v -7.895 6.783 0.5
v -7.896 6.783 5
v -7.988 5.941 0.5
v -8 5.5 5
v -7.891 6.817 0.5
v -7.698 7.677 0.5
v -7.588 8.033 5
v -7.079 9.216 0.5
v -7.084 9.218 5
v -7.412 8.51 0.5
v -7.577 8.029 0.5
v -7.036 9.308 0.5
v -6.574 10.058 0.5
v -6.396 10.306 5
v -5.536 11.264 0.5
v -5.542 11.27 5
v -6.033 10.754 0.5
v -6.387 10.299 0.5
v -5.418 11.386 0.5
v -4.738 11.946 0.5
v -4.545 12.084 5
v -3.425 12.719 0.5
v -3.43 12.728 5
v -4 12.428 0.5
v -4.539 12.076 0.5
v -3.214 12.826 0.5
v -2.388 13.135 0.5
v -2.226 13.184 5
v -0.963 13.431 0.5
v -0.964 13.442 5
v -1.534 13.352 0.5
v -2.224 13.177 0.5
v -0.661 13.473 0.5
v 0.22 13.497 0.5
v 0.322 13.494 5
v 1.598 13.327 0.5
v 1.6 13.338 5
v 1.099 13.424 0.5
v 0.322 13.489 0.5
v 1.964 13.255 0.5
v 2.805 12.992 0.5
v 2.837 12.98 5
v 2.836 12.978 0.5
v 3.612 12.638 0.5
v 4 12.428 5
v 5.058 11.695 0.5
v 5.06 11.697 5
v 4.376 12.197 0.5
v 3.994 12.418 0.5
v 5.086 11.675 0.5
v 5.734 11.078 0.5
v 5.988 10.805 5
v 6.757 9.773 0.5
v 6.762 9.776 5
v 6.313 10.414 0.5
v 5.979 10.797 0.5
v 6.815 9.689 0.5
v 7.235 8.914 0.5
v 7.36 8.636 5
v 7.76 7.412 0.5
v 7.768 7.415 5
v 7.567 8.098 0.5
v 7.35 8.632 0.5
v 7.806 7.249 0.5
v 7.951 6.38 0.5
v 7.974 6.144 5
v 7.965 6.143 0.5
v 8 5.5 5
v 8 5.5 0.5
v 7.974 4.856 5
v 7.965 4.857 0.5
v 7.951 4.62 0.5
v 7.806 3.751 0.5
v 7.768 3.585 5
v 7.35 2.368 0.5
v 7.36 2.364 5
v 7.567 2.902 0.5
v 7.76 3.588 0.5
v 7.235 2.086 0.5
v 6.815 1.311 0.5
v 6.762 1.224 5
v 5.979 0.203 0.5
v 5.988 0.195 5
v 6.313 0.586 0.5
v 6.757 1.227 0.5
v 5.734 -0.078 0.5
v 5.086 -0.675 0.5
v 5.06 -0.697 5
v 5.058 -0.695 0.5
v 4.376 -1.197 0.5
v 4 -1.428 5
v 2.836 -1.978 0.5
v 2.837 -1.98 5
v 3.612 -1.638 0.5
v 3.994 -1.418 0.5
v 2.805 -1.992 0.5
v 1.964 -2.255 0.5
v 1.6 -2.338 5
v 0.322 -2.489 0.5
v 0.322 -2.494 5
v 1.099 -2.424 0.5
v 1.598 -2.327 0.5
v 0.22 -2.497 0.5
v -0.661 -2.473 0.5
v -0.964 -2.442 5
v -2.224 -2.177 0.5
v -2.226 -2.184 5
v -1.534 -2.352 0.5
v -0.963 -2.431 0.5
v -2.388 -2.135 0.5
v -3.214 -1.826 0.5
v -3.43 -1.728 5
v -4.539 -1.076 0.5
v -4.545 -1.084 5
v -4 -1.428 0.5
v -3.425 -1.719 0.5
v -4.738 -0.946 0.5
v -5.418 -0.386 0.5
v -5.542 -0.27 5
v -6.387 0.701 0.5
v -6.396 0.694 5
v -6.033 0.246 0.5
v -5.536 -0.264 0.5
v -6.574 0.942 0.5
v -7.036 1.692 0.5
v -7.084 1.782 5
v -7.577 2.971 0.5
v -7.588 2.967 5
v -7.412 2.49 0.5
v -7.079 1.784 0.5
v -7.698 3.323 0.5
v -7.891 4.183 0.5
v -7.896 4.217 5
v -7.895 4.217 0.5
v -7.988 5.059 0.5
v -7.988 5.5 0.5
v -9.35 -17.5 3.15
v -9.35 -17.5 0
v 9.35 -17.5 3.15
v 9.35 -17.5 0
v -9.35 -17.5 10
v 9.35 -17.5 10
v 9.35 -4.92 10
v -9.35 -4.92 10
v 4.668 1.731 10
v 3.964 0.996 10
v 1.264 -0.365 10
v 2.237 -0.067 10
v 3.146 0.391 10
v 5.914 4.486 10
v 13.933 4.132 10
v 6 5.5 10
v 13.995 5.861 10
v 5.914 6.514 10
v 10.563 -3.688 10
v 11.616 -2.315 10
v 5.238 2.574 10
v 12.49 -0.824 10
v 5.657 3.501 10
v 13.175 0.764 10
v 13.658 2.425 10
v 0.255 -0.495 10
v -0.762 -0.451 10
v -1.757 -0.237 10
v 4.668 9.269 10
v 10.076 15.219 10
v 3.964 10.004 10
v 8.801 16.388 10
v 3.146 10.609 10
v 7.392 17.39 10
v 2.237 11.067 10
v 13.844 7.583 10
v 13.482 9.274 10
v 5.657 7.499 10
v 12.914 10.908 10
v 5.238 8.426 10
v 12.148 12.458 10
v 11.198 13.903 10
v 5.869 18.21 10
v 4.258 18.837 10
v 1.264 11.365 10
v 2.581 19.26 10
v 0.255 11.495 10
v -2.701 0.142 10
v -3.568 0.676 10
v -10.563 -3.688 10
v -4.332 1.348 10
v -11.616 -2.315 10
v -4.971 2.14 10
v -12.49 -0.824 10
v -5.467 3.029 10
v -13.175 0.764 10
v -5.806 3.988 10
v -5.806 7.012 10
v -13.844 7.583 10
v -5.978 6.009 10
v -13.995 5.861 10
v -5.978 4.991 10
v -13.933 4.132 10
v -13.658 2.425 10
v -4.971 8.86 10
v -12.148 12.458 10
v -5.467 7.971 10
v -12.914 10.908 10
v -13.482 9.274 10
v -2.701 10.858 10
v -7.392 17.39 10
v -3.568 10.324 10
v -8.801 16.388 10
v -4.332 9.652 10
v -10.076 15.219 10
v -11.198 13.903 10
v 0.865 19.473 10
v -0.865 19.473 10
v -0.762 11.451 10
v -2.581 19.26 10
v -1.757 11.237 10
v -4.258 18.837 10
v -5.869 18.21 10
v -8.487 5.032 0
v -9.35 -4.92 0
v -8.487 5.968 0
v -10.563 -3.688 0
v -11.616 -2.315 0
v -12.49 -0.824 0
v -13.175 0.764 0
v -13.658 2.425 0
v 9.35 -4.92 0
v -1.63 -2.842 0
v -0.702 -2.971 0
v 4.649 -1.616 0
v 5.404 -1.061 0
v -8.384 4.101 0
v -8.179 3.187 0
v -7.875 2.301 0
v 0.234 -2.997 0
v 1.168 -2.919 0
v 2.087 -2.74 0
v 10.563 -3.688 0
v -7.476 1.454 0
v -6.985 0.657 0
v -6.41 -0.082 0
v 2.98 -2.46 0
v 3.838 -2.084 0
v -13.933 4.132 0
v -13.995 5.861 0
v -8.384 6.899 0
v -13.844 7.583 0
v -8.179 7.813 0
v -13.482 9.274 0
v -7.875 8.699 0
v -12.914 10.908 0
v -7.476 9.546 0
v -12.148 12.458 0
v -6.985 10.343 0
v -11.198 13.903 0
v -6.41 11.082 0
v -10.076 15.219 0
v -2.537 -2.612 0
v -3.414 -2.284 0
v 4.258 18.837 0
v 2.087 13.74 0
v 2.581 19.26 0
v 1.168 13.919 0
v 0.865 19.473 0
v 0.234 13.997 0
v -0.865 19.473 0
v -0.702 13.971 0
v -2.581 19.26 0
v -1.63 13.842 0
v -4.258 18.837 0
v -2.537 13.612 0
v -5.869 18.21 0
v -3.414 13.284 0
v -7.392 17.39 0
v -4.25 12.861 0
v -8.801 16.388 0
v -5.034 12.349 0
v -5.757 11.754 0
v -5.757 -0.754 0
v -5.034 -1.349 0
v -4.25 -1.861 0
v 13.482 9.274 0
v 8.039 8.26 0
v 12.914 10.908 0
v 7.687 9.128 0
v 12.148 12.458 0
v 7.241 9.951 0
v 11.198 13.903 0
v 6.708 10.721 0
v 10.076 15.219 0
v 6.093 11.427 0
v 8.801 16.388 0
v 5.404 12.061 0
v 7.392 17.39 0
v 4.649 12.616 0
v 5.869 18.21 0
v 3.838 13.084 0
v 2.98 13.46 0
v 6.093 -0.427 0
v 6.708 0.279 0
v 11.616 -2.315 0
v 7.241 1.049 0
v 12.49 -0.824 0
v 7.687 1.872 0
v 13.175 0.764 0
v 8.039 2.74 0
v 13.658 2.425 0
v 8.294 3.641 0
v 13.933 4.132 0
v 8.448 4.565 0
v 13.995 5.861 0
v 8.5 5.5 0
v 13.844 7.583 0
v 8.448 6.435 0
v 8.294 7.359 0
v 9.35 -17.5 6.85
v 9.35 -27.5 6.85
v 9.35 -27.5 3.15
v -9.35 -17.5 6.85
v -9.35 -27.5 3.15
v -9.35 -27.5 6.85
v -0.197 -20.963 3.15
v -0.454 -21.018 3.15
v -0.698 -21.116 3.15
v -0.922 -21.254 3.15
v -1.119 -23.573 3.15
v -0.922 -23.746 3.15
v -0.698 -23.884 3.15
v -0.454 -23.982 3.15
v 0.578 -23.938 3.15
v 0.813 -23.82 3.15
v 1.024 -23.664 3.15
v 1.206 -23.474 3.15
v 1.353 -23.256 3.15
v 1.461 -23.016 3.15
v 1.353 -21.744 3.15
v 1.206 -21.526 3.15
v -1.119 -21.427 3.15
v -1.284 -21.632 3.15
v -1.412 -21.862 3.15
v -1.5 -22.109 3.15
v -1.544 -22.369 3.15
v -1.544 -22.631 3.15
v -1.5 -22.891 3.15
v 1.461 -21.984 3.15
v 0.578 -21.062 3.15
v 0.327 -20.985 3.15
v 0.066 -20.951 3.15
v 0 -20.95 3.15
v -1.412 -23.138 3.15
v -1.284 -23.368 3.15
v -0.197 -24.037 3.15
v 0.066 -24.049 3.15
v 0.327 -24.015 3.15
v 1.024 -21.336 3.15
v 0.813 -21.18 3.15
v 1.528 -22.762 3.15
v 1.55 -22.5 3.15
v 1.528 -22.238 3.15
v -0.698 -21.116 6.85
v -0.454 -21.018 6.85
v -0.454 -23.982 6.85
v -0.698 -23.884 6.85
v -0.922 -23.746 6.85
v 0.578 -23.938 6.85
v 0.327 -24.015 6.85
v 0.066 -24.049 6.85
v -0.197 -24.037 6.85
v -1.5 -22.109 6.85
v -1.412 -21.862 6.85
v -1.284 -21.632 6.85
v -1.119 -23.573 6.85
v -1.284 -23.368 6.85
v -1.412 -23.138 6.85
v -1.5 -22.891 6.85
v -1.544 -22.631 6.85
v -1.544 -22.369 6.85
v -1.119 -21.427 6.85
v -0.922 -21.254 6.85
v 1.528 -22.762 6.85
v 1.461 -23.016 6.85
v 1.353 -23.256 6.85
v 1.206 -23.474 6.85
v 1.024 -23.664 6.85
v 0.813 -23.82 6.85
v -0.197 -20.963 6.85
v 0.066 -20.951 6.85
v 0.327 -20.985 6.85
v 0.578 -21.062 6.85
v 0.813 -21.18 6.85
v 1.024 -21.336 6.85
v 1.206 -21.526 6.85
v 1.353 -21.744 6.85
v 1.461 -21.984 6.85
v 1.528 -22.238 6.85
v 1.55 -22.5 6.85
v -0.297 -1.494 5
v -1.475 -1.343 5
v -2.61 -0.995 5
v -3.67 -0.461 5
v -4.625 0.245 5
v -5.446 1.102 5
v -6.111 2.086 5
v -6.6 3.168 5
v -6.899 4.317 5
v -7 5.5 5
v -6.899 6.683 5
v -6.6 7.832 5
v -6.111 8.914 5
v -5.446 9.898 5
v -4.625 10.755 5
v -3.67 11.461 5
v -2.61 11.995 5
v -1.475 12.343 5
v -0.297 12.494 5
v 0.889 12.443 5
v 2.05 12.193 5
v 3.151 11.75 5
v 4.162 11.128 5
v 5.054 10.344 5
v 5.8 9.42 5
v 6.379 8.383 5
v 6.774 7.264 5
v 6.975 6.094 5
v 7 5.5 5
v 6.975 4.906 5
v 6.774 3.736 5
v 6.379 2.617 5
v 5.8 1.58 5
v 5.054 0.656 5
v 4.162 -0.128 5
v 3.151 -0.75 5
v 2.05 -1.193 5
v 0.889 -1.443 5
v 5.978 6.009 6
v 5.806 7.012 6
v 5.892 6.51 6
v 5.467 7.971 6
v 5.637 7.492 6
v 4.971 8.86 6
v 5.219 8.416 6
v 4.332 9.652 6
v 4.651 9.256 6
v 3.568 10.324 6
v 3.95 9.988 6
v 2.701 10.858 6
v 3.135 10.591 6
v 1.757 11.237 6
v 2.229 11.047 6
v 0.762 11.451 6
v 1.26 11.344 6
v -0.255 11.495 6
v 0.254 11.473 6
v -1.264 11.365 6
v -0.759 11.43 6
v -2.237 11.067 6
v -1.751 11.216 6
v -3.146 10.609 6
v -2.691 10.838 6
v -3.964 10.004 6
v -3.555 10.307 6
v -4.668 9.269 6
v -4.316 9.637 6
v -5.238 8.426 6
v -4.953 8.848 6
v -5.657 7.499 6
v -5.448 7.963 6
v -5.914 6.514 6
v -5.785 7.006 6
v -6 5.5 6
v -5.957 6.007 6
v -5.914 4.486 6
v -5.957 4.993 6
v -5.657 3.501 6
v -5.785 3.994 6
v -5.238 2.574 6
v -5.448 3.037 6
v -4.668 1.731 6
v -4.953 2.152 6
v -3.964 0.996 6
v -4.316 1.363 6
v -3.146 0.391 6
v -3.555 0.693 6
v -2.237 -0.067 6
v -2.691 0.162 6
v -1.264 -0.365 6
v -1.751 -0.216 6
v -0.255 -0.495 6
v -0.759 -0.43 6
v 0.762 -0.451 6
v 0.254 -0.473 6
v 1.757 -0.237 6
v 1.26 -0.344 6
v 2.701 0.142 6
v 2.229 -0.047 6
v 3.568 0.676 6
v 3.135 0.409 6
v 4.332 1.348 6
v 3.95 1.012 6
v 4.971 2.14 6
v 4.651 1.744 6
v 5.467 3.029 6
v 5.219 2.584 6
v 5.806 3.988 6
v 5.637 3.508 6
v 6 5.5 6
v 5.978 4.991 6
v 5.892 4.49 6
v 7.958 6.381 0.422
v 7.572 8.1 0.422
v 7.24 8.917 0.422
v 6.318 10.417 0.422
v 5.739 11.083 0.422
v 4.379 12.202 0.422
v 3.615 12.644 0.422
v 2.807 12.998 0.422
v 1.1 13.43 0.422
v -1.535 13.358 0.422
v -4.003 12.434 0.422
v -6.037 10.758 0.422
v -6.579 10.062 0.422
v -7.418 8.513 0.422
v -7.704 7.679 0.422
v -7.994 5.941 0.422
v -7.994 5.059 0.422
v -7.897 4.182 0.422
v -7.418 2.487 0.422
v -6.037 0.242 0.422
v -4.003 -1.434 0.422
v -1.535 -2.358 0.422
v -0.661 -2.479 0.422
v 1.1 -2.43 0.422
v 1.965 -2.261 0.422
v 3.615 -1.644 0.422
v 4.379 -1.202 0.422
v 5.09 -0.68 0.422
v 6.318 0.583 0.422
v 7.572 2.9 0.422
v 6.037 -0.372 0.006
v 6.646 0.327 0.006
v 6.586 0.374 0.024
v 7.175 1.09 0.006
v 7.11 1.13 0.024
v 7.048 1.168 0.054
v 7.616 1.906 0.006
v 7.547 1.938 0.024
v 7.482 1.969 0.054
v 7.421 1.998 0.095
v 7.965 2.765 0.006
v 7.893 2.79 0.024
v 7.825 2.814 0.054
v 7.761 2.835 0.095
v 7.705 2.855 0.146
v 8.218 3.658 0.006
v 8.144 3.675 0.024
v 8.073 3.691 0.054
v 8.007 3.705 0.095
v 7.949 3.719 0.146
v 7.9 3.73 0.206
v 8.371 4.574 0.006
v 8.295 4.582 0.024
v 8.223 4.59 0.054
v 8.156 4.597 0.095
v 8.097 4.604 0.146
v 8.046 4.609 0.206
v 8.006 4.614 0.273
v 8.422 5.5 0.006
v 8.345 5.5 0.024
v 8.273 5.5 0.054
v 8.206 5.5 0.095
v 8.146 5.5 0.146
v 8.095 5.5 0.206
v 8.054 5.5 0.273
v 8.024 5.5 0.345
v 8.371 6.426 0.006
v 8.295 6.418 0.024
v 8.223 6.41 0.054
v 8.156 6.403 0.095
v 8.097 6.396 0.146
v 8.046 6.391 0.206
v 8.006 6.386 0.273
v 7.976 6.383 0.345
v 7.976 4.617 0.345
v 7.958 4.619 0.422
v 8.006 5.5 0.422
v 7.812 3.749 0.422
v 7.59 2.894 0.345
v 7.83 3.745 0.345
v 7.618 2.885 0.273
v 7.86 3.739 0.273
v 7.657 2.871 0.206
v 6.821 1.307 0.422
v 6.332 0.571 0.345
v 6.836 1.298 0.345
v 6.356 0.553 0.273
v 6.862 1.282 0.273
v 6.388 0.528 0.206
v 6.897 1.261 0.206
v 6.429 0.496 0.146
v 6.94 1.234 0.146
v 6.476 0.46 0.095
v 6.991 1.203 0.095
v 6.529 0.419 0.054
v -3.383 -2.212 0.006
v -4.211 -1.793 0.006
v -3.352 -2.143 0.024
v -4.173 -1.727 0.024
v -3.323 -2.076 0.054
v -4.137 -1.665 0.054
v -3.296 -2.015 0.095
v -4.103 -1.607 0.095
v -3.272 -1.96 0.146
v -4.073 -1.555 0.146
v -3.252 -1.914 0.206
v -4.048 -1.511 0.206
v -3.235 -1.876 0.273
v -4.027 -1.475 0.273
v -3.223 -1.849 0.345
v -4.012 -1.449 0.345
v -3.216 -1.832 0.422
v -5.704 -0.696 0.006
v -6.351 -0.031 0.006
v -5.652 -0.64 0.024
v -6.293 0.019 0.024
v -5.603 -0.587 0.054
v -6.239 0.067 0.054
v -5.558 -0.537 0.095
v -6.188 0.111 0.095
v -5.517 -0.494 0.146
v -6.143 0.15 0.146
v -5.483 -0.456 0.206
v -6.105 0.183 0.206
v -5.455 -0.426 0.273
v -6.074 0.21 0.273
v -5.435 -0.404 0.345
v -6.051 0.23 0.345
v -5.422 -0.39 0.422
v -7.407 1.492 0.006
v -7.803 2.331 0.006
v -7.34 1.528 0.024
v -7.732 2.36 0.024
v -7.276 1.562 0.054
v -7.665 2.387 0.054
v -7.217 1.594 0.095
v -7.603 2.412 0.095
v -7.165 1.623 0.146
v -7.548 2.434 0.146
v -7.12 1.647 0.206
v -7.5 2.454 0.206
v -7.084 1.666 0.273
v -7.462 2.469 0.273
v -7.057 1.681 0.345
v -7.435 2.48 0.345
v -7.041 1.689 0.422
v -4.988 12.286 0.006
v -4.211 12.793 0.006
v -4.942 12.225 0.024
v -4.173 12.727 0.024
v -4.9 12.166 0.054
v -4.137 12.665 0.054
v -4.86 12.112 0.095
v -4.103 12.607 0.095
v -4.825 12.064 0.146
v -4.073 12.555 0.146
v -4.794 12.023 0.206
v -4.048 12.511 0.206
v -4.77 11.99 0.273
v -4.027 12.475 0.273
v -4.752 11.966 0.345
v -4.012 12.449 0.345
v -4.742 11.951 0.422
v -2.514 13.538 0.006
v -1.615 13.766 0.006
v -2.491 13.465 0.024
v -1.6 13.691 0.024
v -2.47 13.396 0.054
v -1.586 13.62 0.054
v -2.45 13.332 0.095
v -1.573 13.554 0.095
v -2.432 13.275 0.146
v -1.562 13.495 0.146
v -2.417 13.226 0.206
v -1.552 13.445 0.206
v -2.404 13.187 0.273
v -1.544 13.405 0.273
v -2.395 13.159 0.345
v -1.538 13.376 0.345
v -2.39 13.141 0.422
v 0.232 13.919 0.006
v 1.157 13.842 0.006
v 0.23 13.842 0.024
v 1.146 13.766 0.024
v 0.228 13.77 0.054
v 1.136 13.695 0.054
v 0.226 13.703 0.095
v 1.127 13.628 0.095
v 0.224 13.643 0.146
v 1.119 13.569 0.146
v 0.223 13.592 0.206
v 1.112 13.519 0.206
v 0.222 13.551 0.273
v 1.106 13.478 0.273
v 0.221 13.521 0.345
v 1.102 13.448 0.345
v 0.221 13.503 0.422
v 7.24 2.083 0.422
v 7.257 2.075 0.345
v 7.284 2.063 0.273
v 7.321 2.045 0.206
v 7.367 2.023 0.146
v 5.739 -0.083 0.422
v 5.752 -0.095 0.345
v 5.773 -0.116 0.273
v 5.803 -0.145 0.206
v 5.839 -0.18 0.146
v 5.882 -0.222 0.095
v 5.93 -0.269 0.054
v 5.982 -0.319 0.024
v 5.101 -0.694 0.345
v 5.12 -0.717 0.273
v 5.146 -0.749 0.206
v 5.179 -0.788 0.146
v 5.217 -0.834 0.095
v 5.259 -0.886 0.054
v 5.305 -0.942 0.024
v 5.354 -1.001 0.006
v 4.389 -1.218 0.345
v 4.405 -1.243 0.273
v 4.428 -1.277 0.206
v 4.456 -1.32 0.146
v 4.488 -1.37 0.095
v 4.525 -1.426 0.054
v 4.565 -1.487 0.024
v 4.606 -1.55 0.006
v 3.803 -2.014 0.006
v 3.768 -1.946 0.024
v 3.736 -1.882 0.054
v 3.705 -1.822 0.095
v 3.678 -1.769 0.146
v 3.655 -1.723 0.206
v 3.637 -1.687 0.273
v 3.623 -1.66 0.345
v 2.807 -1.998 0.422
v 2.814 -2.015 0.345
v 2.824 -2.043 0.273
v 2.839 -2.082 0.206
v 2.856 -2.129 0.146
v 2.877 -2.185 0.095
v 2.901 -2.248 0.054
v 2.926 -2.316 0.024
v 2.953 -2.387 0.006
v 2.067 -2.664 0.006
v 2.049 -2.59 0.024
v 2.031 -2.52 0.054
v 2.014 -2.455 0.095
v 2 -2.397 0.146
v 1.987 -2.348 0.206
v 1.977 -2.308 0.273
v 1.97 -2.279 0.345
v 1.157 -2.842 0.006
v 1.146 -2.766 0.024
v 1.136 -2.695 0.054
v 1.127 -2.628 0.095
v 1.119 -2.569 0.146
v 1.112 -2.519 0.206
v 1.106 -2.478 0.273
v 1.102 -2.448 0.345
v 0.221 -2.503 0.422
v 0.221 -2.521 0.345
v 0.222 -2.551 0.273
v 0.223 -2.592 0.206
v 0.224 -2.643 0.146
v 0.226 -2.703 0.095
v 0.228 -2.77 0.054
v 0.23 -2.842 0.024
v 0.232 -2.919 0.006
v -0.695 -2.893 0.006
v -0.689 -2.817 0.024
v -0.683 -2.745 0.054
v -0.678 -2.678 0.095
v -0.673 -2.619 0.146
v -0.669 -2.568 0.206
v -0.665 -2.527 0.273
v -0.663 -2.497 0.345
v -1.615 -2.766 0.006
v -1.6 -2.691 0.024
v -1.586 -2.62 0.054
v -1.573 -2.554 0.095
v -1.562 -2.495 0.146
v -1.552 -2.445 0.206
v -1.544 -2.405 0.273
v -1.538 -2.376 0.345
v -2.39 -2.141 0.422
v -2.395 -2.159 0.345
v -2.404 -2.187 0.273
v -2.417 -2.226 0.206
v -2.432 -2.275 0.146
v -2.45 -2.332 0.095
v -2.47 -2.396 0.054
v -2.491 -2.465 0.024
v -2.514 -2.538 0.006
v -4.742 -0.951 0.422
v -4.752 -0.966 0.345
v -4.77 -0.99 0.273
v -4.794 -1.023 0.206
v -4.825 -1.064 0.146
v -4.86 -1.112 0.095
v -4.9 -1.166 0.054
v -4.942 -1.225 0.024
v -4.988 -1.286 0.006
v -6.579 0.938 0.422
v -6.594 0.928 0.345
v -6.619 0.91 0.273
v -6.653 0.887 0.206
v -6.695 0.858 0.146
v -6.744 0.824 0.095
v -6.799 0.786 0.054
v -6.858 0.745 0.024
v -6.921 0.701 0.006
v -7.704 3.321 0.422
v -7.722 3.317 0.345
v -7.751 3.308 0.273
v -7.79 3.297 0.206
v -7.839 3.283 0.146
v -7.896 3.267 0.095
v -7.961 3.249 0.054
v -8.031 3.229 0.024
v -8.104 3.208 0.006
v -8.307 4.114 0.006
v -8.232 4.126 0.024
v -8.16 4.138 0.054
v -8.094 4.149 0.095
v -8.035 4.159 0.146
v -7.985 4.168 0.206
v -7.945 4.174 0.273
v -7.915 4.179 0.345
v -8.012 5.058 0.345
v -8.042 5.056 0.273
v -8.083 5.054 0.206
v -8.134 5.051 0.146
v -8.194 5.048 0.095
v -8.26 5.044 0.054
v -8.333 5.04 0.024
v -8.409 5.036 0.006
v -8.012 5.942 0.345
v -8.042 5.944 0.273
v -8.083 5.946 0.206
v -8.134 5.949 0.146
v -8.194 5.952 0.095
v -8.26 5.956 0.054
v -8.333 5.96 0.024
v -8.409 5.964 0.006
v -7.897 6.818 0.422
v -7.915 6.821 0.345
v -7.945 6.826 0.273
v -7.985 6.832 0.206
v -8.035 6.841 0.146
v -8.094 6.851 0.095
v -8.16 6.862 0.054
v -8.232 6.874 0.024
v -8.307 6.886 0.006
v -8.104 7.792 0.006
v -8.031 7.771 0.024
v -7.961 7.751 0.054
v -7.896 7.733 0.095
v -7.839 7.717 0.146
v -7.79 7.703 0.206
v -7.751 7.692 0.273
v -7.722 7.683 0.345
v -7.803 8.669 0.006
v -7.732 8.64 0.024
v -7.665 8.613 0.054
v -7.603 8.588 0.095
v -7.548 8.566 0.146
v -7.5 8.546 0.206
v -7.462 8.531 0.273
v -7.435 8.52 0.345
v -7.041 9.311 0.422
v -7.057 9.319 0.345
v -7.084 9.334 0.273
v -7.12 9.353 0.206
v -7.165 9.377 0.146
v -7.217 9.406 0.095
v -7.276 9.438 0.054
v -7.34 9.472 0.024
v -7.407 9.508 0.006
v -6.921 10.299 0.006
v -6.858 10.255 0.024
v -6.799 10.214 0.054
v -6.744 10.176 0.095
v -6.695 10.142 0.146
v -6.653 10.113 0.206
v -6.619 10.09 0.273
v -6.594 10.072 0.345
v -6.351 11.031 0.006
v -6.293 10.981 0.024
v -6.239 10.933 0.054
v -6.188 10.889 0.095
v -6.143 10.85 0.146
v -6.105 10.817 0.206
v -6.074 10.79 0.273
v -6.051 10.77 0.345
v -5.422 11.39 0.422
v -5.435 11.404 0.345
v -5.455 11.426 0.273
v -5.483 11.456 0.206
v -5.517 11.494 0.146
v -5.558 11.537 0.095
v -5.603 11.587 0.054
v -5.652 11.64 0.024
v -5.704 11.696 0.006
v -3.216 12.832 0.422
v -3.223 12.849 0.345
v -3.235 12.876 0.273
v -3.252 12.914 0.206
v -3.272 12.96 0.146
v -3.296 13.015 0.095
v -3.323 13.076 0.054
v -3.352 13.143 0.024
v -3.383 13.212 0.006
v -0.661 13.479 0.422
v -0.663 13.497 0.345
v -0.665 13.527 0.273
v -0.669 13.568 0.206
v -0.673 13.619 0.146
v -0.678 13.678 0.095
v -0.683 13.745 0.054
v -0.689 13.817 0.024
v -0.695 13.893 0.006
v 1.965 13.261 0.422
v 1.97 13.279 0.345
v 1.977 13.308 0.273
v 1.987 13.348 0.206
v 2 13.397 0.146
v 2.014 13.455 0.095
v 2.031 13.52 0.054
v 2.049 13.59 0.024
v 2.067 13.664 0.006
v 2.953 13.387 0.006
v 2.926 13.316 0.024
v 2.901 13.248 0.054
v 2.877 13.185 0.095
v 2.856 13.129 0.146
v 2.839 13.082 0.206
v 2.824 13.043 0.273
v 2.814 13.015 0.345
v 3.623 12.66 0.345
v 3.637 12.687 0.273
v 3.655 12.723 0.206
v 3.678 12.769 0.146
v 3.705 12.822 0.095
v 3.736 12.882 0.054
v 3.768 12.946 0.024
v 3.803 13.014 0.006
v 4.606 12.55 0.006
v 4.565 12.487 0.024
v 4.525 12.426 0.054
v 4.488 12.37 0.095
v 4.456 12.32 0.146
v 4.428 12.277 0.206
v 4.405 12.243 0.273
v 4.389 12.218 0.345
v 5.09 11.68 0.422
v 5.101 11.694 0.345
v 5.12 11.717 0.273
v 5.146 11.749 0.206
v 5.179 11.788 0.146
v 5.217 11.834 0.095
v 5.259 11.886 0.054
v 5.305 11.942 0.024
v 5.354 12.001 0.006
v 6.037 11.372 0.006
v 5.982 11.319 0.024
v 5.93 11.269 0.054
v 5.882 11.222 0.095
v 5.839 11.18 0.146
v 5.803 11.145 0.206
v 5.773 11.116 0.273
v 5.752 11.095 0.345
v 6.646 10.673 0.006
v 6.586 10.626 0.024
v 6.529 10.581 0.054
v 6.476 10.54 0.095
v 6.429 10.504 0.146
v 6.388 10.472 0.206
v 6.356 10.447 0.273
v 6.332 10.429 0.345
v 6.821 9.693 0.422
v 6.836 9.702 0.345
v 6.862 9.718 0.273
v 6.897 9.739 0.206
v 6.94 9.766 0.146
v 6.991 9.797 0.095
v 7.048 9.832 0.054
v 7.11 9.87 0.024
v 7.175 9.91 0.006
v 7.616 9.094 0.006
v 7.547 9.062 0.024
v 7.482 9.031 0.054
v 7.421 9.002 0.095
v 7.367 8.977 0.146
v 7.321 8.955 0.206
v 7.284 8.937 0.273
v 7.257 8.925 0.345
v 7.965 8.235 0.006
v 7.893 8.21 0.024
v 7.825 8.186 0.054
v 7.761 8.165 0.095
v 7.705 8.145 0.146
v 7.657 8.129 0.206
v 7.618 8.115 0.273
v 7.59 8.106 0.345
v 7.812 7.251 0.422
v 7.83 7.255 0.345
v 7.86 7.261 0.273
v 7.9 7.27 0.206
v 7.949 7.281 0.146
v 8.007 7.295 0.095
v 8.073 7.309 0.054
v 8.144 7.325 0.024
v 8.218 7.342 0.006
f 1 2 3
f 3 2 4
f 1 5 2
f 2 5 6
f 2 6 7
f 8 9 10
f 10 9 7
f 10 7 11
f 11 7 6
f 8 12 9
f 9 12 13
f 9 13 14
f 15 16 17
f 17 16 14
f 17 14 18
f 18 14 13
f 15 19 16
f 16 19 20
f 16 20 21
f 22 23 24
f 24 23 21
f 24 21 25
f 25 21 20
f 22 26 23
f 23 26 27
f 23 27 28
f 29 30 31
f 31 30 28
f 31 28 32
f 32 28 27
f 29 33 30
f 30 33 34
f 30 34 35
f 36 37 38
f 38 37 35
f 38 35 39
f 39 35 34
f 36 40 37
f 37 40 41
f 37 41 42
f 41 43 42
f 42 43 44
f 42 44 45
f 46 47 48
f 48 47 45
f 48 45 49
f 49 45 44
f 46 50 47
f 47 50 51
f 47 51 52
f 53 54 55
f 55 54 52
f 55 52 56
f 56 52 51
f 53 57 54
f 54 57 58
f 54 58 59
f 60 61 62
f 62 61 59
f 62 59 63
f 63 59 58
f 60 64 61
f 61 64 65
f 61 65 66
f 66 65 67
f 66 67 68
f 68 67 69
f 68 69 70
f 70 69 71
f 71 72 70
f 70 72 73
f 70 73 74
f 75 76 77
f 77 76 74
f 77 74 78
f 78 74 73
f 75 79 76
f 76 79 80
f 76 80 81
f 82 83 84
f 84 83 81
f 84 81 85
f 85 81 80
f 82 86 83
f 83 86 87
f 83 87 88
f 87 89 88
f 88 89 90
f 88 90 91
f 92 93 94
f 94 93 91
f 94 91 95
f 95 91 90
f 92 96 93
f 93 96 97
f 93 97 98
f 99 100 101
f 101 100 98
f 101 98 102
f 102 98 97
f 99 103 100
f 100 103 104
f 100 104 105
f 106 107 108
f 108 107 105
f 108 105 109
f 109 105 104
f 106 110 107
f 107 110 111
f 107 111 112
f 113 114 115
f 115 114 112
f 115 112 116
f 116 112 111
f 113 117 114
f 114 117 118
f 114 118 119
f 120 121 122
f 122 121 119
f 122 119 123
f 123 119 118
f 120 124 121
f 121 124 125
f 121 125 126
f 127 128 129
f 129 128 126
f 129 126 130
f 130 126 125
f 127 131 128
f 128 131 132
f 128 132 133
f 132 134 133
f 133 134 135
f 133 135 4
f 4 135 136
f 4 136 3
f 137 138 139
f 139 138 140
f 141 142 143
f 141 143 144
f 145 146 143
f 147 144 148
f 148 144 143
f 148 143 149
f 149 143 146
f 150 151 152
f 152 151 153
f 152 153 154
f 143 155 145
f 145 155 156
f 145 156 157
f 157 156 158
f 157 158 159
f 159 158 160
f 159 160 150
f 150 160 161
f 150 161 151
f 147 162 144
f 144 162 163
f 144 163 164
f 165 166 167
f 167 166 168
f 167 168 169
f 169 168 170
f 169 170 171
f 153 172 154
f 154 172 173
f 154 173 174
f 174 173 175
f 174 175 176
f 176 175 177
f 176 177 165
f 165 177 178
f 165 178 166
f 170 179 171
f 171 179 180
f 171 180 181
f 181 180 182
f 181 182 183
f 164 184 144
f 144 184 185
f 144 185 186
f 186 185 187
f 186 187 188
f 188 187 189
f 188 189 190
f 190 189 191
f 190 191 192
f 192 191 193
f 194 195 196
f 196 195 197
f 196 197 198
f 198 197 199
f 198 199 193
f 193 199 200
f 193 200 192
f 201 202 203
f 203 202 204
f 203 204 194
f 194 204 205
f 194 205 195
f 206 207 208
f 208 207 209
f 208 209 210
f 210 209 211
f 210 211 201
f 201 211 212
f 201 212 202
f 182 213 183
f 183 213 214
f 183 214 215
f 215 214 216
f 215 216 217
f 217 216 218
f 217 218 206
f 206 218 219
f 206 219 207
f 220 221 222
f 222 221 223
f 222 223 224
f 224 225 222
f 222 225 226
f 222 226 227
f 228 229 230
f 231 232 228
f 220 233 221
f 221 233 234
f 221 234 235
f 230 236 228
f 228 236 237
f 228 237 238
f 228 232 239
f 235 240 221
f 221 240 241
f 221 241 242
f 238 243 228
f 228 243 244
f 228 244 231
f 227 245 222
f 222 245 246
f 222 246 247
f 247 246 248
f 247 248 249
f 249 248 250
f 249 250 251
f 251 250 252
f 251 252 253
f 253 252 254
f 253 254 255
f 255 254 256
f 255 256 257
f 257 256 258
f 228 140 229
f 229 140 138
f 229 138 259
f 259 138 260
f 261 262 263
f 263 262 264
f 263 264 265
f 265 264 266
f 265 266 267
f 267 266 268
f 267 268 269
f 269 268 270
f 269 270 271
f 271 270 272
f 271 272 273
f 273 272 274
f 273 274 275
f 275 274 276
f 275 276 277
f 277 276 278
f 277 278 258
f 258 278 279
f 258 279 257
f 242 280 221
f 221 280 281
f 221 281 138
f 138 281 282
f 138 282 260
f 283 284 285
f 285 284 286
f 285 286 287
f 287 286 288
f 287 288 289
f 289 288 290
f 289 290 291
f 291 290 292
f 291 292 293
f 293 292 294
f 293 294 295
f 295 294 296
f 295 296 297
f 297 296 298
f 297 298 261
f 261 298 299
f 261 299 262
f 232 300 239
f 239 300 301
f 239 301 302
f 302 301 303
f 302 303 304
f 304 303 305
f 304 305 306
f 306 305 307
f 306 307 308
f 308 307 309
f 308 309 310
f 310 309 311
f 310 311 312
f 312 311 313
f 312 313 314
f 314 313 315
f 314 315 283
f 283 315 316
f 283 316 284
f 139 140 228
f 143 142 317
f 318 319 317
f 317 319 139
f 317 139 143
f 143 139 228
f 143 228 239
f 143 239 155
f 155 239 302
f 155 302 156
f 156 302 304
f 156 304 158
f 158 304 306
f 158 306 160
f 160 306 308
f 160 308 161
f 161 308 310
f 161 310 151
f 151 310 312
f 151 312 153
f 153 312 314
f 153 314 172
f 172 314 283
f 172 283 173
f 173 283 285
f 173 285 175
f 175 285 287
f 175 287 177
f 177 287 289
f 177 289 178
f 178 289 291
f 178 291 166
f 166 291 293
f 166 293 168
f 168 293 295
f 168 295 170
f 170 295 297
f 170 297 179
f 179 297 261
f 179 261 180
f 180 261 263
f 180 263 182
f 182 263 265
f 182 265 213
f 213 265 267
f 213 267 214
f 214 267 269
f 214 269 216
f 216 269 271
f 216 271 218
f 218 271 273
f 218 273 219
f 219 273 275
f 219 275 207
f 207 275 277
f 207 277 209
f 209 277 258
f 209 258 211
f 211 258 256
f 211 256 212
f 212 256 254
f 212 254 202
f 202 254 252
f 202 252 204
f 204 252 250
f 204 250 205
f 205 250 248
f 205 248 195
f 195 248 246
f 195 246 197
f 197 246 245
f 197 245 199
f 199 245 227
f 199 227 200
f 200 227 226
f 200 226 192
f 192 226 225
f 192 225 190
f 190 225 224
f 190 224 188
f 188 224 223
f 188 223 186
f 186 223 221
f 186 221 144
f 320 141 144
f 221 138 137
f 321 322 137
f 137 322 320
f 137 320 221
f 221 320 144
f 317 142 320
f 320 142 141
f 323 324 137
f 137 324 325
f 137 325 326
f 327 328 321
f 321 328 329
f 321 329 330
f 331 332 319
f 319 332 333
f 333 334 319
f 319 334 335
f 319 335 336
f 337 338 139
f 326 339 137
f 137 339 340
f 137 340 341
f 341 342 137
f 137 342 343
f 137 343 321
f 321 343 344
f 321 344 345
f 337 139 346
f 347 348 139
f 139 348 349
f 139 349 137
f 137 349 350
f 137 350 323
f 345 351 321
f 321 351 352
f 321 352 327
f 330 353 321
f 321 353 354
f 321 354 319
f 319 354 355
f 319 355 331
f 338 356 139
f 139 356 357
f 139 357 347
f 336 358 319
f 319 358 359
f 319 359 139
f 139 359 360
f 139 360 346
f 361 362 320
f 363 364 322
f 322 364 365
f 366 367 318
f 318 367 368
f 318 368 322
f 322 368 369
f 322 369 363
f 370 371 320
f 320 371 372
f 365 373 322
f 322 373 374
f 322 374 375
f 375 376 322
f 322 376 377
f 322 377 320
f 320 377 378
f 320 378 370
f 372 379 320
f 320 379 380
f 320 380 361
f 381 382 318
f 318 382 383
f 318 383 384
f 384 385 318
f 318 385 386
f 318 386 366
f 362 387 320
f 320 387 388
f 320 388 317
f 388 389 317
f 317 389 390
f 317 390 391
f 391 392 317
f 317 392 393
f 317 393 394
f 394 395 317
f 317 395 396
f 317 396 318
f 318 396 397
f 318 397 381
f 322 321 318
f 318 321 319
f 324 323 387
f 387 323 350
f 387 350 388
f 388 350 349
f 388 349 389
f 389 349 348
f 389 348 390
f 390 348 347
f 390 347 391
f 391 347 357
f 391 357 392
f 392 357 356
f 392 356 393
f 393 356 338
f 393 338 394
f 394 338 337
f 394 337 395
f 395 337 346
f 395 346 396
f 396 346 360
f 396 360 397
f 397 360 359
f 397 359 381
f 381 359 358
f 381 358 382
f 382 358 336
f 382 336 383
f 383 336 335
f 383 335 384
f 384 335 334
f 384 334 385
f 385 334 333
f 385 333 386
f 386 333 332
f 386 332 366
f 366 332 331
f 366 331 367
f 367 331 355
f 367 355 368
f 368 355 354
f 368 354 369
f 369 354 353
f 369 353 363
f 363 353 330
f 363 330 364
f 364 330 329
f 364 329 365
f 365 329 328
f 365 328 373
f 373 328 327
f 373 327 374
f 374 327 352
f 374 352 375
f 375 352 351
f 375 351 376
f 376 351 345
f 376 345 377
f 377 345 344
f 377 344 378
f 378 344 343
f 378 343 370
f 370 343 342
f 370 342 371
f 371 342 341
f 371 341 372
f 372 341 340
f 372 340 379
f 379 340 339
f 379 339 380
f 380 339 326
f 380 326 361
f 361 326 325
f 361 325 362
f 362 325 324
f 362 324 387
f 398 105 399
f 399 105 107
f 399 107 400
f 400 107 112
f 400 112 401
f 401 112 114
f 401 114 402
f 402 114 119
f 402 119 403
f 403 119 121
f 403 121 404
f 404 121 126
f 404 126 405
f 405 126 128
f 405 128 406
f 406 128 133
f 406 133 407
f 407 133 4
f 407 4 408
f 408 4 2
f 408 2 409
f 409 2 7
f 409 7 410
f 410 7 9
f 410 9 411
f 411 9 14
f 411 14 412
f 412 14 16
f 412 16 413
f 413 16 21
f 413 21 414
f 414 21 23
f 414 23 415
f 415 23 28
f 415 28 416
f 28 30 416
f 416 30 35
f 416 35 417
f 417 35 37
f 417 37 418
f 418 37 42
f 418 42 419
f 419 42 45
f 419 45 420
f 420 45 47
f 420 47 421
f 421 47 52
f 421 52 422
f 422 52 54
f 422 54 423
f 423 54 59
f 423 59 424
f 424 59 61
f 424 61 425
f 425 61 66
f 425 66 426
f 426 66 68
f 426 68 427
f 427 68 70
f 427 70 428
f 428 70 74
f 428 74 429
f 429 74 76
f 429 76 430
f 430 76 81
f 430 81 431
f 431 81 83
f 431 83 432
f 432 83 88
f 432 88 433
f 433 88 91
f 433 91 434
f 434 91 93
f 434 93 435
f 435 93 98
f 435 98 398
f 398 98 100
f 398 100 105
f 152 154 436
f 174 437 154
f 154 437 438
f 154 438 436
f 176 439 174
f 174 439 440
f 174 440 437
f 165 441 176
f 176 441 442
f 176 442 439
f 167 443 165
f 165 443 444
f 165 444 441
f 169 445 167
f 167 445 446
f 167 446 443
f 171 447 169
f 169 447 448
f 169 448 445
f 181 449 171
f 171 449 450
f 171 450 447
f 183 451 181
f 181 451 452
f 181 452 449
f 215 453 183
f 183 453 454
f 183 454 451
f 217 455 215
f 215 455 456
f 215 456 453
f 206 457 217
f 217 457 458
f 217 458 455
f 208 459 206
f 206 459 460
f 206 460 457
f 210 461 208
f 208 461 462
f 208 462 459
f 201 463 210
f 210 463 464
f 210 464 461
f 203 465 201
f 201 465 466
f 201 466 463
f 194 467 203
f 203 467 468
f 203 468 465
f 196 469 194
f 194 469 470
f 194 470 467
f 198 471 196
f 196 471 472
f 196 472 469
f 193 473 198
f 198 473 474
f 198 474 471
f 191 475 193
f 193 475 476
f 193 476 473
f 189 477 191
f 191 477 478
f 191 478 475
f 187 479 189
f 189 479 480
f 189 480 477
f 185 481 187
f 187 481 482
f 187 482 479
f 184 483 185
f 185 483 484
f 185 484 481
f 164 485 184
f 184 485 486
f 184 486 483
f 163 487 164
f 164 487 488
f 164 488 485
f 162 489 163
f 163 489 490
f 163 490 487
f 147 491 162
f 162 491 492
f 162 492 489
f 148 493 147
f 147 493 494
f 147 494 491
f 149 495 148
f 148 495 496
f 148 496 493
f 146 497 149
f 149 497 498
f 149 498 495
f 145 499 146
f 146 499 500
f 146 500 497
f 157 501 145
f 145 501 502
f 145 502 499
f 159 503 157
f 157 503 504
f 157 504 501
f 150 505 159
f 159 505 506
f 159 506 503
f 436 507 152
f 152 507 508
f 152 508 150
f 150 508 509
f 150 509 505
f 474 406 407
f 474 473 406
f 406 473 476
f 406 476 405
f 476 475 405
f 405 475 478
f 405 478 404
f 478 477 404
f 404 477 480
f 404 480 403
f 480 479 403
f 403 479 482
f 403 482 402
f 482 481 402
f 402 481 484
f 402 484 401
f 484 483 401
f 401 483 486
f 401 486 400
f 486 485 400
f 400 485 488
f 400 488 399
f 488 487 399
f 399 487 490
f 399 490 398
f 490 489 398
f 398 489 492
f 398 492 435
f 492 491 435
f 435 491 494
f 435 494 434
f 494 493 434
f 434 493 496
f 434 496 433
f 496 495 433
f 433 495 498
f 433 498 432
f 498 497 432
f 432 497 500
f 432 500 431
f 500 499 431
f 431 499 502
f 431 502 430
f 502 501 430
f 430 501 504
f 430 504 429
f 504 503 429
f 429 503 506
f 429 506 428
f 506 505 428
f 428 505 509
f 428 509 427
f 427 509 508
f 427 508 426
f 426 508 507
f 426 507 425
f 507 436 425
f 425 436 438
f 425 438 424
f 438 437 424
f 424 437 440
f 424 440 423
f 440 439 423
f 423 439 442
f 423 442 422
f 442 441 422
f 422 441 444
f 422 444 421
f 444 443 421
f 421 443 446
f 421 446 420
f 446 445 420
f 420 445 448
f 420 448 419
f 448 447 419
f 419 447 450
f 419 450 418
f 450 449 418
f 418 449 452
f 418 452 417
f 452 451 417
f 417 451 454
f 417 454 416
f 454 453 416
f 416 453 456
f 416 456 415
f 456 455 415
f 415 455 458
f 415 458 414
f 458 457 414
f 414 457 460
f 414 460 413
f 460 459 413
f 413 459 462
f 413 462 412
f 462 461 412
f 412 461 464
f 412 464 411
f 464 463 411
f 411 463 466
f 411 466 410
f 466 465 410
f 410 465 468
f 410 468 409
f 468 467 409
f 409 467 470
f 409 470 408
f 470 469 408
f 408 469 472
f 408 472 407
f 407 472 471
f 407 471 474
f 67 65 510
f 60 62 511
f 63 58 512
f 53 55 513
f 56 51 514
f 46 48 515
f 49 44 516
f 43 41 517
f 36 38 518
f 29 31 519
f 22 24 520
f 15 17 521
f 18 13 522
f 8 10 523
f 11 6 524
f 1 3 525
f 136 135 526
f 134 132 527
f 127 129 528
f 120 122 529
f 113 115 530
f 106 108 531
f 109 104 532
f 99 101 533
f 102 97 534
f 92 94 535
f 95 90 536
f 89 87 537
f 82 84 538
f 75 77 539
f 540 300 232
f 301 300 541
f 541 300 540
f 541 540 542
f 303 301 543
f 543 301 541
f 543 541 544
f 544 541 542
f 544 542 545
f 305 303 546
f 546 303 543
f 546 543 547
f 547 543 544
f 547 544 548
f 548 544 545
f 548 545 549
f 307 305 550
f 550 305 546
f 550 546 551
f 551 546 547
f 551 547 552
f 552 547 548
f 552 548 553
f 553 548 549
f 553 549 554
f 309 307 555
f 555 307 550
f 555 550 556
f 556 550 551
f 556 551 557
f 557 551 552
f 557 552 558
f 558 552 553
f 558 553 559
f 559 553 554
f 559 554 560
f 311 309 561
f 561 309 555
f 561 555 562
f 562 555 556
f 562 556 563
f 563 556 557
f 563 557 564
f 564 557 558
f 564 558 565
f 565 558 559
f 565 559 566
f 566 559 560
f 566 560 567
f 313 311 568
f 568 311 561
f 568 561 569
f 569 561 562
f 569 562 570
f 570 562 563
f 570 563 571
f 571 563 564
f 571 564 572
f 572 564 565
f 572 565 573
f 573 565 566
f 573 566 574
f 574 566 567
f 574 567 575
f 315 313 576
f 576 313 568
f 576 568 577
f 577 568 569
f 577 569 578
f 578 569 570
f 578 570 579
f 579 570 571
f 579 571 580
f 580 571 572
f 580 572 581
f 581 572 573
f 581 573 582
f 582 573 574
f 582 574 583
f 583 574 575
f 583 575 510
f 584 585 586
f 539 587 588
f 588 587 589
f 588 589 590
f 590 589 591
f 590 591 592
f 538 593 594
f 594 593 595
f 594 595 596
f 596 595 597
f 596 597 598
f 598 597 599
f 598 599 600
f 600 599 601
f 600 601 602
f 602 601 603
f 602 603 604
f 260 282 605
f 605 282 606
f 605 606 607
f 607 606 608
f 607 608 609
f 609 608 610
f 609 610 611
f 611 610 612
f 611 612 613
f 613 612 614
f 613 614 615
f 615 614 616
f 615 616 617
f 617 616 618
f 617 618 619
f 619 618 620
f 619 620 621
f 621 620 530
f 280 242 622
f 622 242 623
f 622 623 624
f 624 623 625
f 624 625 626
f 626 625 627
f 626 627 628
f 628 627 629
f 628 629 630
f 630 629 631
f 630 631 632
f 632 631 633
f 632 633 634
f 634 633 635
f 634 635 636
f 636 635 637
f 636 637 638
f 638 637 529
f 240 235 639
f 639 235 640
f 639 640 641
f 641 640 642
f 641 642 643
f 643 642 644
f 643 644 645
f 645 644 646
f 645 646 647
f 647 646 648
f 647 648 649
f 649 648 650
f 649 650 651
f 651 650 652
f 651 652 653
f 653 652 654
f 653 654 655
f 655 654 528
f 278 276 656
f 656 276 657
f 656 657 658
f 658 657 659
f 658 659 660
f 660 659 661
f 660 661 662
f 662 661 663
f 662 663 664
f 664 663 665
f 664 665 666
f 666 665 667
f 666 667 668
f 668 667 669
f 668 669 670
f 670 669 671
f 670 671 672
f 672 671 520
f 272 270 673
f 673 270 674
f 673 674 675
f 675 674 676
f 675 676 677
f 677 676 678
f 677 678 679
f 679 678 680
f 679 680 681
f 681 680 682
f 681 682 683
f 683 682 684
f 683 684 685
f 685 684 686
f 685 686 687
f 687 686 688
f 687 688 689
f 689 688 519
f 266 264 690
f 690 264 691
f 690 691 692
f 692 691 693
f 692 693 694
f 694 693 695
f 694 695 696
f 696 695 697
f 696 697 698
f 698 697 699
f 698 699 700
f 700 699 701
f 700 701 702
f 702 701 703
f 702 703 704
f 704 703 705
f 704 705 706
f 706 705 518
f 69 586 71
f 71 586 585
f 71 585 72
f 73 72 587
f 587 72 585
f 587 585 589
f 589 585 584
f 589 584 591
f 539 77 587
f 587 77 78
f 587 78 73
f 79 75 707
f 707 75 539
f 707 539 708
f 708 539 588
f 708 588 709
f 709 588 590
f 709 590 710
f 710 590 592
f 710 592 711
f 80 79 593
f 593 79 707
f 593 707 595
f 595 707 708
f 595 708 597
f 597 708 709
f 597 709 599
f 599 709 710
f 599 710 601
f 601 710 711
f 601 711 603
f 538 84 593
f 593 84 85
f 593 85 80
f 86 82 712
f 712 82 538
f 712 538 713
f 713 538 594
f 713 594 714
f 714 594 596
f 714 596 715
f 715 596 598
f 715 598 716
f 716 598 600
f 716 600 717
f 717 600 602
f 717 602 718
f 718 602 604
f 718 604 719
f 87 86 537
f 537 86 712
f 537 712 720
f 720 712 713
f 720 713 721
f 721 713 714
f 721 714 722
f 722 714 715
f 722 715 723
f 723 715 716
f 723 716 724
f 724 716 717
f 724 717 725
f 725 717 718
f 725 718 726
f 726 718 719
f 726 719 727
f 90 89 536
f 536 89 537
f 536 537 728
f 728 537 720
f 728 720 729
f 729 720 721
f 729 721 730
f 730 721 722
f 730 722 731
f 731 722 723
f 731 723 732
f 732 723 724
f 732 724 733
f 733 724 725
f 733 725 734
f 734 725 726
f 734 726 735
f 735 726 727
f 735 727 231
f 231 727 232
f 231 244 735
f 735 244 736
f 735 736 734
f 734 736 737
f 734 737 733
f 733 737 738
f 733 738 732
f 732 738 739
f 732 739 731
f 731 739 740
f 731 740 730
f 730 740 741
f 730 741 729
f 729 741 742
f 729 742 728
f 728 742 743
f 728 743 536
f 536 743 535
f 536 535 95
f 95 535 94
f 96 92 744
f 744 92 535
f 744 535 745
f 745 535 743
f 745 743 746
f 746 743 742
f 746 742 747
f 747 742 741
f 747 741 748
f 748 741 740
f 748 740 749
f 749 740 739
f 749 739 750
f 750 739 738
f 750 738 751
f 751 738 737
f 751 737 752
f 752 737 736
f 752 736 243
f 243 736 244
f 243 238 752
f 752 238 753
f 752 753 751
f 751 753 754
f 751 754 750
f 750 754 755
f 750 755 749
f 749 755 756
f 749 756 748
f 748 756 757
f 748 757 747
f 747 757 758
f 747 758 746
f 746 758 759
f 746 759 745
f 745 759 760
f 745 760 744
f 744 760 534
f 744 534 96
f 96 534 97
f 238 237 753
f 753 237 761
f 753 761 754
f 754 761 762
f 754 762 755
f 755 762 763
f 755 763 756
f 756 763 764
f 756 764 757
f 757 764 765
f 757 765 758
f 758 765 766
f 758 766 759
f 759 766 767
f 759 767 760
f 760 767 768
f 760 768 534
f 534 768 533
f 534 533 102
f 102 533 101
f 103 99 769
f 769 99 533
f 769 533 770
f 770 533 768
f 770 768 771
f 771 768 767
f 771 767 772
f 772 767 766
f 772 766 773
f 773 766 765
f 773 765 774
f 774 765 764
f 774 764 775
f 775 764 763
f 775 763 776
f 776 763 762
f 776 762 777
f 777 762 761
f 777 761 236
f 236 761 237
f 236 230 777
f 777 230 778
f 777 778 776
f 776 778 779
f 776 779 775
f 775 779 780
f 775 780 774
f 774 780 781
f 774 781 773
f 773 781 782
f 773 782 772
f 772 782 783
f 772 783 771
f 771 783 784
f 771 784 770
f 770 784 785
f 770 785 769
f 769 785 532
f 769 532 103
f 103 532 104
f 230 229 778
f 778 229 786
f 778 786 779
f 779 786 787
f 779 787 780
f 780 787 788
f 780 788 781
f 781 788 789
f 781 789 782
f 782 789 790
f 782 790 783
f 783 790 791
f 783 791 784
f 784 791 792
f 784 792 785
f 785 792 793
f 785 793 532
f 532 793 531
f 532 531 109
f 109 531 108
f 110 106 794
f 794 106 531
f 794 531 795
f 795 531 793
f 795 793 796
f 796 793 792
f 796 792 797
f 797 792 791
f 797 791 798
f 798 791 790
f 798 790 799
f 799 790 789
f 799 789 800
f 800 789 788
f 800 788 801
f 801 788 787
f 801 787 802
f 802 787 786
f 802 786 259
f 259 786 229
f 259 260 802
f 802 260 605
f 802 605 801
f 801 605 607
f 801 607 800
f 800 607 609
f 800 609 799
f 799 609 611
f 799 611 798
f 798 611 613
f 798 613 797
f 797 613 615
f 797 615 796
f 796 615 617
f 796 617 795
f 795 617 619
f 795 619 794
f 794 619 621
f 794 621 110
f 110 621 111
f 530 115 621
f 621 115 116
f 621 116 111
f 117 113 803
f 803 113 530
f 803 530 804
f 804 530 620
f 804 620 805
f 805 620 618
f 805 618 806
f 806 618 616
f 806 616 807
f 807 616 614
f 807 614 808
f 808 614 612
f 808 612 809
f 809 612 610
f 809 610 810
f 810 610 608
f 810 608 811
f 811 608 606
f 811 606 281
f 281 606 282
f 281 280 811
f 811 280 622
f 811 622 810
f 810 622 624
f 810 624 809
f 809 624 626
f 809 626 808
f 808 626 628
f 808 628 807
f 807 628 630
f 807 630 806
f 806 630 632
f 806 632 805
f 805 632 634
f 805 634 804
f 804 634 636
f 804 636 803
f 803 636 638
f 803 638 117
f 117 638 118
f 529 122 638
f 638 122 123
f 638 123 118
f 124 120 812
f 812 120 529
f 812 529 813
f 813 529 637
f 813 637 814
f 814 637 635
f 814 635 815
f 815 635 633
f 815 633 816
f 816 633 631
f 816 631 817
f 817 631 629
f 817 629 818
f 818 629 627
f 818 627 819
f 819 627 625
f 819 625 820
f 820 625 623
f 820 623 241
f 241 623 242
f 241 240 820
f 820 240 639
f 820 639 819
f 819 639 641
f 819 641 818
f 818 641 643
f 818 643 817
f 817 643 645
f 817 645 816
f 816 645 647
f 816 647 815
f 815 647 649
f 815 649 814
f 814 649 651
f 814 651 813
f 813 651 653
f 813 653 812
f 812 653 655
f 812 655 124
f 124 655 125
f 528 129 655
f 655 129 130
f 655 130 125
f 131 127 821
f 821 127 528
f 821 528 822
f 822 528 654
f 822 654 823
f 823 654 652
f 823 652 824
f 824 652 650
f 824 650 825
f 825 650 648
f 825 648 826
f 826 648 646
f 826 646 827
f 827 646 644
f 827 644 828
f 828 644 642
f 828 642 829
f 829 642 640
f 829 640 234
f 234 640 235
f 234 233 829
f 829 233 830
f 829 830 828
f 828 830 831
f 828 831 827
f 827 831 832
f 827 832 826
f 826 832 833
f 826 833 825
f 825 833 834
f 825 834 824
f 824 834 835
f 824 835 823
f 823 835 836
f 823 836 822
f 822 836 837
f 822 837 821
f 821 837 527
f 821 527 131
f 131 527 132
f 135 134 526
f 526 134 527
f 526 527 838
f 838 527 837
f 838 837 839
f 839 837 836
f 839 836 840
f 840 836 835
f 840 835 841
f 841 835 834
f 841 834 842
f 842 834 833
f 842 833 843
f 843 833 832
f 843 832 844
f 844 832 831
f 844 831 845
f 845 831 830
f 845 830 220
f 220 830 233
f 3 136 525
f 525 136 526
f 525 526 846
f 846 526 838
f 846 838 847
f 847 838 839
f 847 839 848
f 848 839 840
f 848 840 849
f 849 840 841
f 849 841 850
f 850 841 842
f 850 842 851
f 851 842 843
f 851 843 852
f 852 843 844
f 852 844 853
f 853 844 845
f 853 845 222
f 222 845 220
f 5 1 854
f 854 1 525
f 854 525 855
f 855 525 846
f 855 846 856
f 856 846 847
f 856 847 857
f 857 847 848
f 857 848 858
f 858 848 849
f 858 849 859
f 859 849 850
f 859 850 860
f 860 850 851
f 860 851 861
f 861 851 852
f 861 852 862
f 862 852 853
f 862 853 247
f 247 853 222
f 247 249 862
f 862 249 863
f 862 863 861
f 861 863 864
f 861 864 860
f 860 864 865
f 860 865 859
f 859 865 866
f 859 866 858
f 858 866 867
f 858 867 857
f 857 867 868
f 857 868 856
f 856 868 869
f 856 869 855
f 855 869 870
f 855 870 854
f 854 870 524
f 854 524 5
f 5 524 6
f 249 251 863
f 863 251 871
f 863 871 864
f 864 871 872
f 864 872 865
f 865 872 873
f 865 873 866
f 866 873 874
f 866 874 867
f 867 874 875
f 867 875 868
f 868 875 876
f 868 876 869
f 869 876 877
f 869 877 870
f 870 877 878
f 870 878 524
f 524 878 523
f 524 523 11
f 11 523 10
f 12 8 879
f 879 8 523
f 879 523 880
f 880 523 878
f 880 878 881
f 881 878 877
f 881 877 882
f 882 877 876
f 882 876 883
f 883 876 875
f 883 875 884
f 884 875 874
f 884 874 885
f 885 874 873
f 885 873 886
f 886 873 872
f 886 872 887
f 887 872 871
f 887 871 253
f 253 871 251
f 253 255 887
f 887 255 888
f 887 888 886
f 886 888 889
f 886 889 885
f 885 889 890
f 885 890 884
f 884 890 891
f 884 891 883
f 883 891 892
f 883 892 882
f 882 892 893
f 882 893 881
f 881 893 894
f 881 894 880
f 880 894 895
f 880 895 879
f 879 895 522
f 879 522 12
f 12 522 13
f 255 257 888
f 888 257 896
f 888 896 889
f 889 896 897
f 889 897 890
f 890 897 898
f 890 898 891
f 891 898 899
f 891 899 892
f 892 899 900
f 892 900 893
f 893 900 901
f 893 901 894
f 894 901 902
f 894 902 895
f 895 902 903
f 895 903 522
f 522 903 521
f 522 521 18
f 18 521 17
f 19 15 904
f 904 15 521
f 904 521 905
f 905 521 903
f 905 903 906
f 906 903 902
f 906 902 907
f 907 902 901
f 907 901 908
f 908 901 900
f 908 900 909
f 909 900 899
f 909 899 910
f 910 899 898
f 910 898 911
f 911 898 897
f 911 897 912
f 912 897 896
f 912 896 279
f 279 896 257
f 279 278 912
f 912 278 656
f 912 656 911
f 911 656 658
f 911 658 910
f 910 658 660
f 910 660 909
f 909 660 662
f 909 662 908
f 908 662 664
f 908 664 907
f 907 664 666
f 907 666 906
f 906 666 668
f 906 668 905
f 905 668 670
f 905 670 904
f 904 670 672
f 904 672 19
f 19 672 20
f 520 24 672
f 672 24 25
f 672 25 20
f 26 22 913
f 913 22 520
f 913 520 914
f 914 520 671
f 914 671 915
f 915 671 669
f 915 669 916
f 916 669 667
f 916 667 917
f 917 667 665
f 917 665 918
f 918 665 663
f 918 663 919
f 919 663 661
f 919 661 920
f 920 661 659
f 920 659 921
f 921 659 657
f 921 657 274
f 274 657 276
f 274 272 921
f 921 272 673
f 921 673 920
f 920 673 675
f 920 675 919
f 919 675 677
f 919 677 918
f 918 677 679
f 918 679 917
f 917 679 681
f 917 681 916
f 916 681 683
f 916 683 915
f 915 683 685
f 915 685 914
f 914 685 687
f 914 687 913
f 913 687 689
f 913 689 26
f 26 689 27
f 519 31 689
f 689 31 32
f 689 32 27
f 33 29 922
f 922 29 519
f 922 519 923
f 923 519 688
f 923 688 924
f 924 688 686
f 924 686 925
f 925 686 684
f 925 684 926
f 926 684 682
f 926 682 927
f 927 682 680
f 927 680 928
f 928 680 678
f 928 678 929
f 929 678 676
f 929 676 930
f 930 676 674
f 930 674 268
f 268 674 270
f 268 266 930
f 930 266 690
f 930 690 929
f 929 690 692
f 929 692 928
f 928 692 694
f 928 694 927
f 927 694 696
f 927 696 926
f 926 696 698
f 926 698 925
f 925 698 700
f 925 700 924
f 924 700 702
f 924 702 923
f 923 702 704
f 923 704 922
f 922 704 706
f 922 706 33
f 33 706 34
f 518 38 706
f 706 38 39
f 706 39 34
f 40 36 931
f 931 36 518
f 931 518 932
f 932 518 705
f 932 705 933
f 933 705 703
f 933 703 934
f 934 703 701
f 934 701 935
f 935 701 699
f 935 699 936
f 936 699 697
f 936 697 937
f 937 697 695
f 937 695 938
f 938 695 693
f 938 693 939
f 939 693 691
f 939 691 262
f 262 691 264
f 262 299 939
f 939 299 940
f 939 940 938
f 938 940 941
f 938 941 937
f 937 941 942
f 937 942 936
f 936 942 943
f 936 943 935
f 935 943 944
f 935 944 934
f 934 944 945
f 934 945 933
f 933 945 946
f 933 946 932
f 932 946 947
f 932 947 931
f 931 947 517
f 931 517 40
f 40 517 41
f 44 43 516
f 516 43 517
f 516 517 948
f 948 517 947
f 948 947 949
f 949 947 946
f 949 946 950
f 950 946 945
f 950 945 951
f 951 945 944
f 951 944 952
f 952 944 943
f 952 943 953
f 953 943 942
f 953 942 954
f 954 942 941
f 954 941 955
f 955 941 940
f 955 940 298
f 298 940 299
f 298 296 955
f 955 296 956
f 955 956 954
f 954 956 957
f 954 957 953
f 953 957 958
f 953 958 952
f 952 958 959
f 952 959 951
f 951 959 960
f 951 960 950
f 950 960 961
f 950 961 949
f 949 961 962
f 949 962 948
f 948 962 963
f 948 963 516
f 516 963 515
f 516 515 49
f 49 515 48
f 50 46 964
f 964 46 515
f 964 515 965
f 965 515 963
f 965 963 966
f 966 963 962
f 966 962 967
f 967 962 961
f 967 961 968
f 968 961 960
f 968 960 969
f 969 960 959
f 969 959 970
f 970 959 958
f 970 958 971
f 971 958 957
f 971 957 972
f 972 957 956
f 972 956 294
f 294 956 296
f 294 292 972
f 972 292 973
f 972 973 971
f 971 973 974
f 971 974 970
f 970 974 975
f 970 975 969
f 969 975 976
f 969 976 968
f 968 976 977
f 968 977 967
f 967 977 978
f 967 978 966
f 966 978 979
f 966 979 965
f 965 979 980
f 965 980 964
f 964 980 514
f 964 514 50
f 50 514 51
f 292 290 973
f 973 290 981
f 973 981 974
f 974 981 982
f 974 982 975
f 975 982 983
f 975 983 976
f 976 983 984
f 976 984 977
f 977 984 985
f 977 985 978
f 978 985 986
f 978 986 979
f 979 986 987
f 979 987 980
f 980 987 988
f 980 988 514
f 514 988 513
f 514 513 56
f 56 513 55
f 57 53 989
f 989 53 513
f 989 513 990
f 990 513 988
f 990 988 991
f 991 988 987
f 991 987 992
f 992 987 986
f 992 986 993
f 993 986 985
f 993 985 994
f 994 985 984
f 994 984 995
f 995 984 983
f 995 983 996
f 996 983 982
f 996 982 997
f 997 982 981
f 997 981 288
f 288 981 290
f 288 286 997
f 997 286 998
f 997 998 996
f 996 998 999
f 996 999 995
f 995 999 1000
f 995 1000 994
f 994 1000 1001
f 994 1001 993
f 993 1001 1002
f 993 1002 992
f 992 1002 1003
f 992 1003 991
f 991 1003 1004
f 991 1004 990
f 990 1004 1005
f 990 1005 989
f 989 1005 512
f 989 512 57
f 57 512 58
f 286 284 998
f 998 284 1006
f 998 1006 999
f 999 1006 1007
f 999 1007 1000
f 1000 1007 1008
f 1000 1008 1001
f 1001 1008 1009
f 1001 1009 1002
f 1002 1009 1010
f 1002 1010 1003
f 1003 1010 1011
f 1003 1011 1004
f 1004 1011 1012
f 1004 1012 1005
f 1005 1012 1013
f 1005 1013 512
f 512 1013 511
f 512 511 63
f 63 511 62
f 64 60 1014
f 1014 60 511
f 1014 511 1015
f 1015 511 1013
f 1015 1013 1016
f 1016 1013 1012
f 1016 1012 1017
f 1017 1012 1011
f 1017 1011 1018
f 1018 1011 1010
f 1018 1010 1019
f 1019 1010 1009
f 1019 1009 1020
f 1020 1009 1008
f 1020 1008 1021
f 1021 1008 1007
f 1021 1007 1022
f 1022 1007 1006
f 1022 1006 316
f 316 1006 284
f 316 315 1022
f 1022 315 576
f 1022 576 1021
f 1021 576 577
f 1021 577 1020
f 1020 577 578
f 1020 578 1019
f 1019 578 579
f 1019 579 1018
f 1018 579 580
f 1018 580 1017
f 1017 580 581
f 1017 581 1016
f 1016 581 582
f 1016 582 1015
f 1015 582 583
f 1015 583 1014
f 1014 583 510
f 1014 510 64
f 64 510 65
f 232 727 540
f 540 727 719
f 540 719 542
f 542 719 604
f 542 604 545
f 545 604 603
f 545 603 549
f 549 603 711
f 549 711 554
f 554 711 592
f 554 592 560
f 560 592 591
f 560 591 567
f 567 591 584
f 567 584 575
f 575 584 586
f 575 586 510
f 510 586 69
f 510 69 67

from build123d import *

# Parameters (mm, degrees)
SKETCH1_R           = 8
BOSS_EXTRUDE1_DEPTH = 10
SKETCH2_W           = 3.7
SKETCH2_H           = 20
BOSS_EXTRUDE2_DEPTH = 18.7
SKETCH3_R           = 1.55
CUT_EXTRUDE1_DEPTH  = 18.7
BOSS_EXTRUDE3_START = -5
SKETCH4_R           = 8
SKETCH4_R_2         = 6
BOSS_EXTRUDE3_DEPTH = 5
CHAMFER1_SIZE       = 1
FILLET1_R           = 0.5


with BuildPart() as part:
    # Sketch1 → Boss-Extrude1 (new body)
    with BuildSketch(Plane.XY):
        with BuildLine():
            Line((-9.35, -4.920052783), (-9.35, -17.5))
            Line((-9.35, -17.5), (9.35, -17.5))
            Line((9.35, -17.5), (9.35, -4.920052783))
            ThreePointArc((9.35, -4.920052783), (0, 19.5), (-9.35, -4.920052783))
        make_face()
        with Locations((0, 5.5)):
            Circle(SKETCH1_R, mode=Mode.SUBTRACT)
    extrude(amount=BOSS_EXTRUDE1_DEPTH)

    # Sketch2 → Boss-Extrude2 (add)
    with BuildSketch(Plane(origin=(9.35, 0, 0), x_dir=(0, 0, -1), z_dir=(1, 0, 0))):
        with Locations((-5, -17.5)):
            Rectangle(SKETCH2_W, SKETCH2_H)
    extrude(amount=-BOSS_EXTRUDE2_DEPTH)

    # Sketch3 → Cut-Extrude1 (cut)
    with BuildSketch(Plane.XY.offset(6.85)):
        with Locations((0, -22.5)):
            Circle(SKETCH3_R)
    extrude(amount=-CUT_EXTRUDE1_DEPTH, mode=Mode.SUBTRACT)

    # Sketch4 → Boss-Extrude3 (add)
    with BuildSketch(Plane.XY.offset(10).offset(BOSS_EXTRUDE3_START)):
        with Locations((0, 5.5)):
            Circle(SKETCH4_R)
        with Locations((0, 5.5)):
            Circle(SKETCH4_R_2, mode=Mode.SUBTRACT)
    extrude(amount=BOSS_EXTRUDE3_DEPTH)

    # Chamfer1
    chamfer1_edges = [part.edges().sort_by_distance(p)[0] for p in [
        (-6, 5.5, 5),
    ]]
    chamfer(chamfer1_edges, length=CHAMFER1_SIZE)

    # Fillet1
    fillet1_edges = [part.edges().sort_by_distance(p)[0] for p in [
        (-8, 5.5, 0),
    ]]
    fillet(fillet1_edges, radius=FILLET1_R)


solid = part.part
